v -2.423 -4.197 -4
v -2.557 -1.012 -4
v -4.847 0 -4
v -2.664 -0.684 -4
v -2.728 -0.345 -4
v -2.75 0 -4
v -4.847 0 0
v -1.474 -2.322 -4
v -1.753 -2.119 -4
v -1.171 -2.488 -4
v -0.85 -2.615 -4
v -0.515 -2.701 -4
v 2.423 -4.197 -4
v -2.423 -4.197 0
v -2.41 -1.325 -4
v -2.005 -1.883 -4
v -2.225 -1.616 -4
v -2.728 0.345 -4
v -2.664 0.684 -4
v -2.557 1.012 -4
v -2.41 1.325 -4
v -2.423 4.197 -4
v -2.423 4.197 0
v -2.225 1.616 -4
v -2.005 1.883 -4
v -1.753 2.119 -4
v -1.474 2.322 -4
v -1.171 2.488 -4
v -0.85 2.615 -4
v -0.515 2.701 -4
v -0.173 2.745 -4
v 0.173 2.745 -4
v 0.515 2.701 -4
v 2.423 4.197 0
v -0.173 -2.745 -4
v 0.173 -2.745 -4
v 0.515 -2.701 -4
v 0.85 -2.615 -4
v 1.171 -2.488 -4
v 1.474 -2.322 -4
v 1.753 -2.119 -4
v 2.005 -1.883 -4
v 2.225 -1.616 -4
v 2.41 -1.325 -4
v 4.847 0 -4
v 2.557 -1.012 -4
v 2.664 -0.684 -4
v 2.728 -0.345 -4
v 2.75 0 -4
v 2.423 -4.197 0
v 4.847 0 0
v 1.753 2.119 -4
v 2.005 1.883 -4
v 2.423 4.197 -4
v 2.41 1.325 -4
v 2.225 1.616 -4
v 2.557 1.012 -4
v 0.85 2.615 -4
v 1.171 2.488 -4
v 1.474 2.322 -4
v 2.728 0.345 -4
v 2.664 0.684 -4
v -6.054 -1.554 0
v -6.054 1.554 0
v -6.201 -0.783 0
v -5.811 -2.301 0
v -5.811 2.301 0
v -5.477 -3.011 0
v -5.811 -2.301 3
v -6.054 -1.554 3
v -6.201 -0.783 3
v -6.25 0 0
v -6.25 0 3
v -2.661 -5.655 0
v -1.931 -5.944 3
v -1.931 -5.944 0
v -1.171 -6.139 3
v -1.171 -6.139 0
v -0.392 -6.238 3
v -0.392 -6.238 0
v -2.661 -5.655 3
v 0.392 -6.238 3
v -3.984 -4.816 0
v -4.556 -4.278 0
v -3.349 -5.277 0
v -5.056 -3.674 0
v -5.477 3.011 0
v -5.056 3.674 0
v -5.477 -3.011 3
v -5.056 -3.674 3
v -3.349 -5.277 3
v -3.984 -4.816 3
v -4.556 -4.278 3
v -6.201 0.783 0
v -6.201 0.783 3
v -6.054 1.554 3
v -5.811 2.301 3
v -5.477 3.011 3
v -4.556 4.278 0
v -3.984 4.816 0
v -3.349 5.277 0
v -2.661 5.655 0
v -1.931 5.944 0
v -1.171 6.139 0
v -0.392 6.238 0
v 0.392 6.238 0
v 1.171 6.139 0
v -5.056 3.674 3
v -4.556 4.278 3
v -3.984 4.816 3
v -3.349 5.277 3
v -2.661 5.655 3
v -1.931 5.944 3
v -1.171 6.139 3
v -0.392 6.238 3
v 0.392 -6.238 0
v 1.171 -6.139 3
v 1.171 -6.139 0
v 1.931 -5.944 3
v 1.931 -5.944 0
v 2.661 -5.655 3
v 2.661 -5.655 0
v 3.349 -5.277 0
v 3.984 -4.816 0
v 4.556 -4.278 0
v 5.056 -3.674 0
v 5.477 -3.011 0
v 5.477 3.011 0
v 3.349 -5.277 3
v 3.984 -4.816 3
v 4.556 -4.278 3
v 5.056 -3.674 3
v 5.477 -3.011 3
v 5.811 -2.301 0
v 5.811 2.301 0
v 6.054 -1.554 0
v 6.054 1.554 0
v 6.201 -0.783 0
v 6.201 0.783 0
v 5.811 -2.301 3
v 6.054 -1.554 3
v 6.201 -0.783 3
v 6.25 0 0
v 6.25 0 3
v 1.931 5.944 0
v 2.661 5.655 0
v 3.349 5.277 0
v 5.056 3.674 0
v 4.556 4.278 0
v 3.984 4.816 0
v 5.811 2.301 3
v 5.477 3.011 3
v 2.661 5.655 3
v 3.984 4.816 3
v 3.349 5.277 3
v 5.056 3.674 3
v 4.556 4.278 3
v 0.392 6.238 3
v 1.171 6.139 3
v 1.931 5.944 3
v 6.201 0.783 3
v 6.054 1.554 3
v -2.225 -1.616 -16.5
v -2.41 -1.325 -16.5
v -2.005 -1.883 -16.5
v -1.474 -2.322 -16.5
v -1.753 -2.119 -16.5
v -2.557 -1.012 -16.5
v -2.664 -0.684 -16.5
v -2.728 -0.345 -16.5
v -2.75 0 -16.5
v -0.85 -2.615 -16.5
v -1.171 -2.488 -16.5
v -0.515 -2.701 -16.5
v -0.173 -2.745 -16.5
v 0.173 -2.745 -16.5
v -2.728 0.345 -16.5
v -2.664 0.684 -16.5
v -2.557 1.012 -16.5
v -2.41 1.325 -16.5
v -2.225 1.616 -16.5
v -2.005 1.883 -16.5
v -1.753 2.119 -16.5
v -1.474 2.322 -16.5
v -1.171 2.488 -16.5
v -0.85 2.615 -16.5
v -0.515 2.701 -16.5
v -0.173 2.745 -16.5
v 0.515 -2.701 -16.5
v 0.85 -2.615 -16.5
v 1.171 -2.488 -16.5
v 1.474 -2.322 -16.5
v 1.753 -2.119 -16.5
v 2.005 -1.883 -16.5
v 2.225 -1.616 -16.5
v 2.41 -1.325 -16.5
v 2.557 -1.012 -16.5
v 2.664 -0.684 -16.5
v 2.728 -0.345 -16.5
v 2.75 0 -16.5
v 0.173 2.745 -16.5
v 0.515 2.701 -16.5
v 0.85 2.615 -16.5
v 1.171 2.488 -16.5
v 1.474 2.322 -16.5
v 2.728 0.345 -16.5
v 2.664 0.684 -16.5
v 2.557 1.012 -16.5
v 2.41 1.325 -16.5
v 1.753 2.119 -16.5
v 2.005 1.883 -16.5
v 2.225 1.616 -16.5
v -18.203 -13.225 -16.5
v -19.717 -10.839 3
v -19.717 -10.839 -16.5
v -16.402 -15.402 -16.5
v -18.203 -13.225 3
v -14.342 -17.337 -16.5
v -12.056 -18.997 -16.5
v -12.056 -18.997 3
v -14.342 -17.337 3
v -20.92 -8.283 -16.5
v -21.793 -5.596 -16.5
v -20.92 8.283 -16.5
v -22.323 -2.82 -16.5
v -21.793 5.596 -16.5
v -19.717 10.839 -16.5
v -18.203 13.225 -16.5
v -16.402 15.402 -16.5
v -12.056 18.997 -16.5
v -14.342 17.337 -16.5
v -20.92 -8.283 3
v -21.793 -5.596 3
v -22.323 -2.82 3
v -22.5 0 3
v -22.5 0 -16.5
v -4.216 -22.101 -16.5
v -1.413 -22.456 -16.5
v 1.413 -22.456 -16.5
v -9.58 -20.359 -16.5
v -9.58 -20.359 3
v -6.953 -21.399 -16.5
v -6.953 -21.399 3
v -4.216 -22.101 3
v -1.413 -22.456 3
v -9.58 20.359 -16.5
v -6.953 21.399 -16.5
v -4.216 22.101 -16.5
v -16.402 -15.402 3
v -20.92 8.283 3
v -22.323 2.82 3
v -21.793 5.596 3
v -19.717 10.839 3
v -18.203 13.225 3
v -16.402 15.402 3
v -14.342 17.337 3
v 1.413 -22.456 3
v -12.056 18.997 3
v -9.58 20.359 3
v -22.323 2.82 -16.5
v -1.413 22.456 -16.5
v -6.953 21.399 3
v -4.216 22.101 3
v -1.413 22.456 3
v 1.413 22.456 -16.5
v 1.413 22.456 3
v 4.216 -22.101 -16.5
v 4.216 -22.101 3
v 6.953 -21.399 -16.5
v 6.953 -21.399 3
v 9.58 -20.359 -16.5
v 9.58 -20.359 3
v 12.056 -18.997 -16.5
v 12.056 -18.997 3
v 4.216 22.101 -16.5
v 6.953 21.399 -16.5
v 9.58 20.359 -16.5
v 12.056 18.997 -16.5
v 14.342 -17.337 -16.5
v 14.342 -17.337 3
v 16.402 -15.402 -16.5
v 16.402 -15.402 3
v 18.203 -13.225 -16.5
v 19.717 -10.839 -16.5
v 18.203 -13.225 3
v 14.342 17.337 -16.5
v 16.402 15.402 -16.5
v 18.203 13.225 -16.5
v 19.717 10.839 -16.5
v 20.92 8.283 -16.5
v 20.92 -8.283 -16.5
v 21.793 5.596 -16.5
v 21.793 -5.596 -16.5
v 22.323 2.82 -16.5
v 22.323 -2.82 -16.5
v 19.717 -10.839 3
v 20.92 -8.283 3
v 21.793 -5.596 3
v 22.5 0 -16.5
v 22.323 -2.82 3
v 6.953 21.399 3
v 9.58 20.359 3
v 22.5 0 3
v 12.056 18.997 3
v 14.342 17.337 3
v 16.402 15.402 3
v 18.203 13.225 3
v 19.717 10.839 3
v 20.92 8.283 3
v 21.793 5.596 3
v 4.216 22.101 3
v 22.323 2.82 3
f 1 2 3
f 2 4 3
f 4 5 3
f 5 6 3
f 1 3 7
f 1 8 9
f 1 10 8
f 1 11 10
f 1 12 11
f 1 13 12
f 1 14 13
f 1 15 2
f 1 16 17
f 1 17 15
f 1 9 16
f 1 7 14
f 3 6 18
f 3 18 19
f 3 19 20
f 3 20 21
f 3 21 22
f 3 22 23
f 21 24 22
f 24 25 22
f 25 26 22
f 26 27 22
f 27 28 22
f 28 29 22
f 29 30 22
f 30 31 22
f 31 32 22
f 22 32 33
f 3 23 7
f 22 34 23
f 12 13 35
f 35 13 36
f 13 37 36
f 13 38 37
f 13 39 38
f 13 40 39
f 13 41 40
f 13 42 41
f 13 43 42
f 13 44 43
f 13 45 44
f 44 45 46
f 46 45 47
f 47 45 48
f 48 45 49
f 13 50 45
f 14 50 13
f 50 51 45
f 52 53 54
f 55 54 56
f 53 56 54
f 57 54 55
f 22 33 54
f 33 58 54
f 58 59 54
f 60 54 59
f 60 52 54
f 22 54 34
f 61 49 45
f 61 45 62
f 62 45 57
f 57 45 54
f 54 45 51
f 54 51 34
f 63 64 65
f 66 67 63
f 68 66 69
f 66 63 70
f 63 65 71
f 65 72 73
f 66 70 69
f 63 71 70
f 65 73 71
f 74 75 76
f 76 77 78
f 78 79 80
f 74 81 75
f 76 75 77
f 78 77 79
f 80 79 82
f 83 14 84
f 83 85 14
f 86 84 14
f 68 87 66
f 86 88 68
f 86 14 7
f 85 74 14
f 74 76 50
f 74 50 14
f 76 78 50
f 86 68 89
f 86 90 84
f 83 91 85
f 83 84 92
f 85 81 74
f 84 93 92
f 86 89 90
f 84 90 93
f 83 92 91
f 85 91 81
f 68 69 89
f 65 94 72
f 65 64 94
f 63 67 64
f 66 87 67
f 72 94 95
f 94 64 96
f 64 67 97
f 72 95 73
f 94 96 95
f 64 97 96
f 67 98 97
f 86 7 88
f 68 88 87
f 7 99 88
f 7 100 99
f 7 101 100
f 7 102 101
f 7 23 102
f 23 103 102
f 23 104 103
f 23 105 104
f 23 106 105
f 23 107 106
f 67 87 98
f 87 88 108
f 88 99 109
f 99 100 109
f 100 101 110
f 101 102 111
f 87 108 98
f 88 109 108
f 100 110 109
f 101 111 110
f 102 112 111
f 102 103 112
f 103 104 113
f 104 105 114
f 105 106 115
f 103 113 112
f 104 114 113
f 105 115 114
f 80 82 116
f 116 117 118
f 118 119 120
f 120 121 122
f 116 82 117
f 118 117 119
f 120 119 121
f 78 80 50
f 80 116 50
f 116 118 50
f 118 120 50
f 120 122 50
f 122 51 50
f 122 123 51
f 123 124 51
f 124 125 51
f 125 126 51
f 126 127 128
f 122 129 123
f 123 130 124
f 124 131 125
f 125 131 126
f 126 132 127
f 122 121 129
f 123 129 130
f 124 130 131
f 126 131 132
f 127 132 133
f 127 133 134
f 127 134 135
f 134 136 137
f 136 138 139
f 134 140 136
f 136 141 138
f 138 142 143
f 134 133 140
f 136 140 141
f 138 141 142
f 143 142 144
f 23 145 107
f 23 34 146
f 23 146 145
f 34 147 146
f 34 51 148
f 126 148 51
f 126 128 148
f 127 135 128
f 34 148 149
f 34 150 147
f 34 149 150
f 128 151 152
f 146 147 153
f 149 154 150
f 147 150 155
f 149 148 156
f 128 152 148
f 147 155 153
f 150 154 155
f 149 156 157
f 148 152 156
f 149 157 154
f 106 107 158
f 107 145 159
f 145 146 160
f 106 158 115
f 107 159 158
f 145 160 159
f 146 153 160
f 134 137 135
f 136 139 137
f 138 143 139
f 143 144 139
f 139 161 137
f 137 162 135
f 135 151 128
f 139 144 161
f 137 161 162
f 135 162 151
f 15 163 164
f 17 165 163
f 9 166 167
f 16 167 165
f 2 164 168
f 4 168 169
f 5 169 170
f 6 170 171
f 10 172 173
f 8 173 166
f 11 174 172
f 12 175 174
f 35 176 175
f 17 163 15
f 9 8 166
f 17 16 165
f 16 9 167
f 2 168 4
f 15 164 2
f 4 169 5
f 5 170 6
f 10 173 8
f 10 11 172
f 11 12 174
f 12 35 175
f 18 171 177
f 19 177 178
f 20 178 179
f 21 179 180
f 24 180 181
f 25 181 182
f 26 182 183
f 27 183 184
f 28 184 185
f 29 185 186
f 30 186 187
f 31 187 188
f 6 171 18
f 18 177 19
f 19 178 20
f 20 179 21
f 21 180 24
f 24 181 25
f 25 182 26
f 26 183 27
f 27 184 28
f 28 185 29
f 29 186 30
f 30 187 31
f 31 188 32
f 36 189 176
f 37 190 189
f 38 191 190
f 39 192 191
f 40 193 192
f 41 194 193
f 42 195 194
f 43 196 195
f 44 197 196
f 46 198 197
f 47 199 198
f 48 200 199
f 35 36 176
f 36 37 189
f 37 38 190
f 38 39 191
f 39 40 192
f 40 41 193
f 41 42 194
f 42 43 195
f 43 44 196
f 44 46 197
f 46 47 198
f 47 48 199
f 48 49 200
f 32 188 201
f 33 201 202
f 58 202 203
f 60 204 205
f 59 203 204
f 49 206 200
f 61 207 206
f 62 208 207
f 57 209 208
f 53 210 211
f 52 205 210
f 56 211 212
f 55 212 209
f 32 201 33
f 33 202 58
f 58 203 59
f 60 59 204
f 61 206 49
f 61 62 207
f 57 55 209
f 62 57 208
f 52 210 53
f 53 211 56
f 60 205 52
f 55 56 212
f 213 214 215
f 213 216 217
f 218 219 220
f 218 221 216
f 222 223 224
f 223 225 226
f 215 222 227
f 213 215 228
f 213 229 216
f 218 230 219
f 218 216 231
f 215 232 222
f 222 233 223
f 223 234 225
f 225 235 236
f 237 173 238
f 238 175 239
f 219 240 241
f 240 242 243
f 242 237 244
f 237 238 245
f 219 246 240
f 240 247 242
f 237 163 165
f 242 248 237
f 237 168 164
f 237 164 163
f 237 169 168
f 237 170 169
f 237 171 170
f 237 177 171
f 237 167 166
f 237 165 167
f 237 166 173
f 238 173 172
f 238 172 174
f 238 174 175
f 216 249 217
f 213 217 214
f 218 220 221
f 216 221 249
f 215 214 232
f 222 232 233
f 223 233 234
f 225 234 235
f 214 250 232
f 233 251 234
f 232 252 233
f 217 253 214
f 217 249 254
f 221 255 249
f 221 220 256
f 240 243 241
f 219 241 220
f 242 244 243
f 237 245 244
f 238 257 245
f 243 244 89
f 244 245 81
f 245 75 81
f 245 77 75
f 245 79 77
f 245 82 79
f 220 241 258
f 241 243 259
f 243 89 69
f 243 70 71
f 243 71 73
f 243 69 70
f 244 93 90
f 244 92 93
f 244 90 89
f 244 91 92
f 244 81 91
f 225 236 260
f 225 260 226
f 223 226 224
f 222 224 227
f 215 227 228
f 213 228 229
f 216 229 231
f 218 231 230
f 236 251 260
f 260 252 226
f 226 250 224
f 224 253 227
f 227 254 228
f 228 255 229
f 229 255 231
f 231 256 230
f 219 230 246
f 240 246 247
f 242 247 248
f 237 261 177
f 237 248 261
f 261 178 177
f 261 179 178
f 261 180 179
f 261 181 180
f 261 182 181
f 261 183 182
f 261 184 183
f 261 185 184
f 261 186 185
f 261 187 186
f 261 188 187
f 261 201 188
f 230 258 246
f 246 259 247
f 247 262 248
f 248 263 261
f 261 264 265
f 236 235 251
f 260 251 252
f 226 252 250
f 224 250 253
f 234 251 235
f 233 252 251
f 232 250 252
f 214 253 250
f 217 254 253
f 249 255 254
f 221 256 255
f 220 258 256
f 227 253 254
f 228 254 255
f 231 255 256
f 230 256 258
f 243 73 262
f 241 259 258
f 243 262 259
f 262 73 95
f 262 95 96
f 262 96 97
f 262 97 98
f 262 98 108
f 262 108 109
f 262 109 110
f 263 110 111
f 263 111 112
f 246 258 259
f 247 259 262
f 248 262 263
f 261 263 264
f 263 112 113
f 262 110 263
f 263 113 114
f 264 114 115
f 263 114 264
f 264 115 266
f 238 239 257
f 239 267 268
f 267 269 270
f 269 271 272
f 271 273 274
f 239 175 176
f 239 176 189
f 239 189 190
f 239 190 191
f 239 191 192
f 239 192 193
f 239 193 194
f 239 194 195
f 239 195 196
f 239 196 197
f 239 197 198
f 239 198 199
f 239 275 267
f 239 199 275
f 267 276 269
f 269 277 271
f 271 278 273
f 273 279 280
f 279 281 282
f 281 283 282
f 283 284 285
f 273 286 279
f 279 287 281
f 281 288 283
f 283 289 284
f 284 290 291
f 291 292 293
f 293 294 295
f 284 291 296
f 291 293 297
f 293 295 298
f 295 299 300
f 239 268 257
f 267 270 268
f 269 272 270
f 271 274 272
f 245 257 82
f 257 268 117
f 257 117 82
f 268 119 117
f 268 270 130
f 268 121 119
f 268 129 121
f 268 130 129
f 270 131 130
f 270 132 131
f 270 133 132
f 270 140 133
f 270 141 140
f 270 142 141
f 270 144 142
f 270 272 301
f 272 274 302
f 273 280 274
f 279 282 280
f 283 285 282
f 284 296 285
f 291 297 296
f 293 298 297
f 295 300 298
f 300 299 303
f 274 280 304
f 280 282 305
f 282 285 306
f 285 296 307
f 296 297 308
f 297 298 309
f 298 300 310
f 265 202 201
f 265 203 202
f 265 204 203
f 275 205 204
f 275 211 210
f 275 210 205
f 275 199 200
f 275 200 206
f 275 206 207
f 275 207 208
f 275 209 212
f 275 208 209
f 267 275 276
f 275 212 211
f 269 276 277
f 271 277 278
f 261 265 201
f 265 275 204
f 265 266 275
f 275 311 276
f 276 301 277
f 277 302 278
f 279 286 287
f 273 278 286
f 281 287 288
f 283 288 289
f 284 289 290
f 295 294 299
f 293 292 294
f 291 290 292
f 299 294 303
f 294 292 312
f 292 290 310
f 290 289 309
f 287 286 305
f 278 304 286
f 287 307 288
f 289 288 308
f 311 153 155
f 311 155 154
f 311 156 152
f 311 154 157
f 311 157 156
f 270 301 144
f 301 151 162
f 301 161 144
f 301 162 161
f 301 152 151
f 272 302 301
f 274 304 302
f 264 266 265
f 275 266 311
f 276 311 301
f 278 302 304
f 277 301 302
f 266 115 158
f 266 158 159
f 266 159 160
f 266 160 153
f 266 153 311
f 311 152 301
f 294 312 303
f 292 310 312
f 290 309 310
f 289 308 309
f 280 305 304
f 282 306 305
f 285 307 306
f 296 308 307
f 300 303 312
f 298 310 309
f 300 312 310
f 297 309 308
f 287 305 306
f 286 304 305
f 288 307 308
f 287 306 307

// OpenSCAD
$fn = 50;


difference() {
	union() {
		translate(v = [0, 0, -16.5000000000]) {
			cylinder(h = 19.5000000000, r = 22.5000000000);
		}
	}
	union() {
		translate(v = [0, 0, 0]) {
			rotate(a = [0, 0, 0]) {
				difference() {
					union() {
						translate(v = [0, 0, -4]) {
							linear_extrude(height = 4) {
								polygon(points = [[4.8468000000, 0.0000000000], [2.4234000000, 4.1974519271], [-2.4234000000, 4.1974519271], [-4.8468000000, 0.0000000000], [-2.4234000000, -4.1974519271], [2.4234000000, -4.1974519271]]);
							}
						}
					}
					union();
				}
			}
		}
		#cylinder(h = 3, r = 6.2500000000);
		#translate(v = [0, 0, -100.0000000000]) {
			cylinder(h = 200, r = 2.7500000000);
		}
	}
}
